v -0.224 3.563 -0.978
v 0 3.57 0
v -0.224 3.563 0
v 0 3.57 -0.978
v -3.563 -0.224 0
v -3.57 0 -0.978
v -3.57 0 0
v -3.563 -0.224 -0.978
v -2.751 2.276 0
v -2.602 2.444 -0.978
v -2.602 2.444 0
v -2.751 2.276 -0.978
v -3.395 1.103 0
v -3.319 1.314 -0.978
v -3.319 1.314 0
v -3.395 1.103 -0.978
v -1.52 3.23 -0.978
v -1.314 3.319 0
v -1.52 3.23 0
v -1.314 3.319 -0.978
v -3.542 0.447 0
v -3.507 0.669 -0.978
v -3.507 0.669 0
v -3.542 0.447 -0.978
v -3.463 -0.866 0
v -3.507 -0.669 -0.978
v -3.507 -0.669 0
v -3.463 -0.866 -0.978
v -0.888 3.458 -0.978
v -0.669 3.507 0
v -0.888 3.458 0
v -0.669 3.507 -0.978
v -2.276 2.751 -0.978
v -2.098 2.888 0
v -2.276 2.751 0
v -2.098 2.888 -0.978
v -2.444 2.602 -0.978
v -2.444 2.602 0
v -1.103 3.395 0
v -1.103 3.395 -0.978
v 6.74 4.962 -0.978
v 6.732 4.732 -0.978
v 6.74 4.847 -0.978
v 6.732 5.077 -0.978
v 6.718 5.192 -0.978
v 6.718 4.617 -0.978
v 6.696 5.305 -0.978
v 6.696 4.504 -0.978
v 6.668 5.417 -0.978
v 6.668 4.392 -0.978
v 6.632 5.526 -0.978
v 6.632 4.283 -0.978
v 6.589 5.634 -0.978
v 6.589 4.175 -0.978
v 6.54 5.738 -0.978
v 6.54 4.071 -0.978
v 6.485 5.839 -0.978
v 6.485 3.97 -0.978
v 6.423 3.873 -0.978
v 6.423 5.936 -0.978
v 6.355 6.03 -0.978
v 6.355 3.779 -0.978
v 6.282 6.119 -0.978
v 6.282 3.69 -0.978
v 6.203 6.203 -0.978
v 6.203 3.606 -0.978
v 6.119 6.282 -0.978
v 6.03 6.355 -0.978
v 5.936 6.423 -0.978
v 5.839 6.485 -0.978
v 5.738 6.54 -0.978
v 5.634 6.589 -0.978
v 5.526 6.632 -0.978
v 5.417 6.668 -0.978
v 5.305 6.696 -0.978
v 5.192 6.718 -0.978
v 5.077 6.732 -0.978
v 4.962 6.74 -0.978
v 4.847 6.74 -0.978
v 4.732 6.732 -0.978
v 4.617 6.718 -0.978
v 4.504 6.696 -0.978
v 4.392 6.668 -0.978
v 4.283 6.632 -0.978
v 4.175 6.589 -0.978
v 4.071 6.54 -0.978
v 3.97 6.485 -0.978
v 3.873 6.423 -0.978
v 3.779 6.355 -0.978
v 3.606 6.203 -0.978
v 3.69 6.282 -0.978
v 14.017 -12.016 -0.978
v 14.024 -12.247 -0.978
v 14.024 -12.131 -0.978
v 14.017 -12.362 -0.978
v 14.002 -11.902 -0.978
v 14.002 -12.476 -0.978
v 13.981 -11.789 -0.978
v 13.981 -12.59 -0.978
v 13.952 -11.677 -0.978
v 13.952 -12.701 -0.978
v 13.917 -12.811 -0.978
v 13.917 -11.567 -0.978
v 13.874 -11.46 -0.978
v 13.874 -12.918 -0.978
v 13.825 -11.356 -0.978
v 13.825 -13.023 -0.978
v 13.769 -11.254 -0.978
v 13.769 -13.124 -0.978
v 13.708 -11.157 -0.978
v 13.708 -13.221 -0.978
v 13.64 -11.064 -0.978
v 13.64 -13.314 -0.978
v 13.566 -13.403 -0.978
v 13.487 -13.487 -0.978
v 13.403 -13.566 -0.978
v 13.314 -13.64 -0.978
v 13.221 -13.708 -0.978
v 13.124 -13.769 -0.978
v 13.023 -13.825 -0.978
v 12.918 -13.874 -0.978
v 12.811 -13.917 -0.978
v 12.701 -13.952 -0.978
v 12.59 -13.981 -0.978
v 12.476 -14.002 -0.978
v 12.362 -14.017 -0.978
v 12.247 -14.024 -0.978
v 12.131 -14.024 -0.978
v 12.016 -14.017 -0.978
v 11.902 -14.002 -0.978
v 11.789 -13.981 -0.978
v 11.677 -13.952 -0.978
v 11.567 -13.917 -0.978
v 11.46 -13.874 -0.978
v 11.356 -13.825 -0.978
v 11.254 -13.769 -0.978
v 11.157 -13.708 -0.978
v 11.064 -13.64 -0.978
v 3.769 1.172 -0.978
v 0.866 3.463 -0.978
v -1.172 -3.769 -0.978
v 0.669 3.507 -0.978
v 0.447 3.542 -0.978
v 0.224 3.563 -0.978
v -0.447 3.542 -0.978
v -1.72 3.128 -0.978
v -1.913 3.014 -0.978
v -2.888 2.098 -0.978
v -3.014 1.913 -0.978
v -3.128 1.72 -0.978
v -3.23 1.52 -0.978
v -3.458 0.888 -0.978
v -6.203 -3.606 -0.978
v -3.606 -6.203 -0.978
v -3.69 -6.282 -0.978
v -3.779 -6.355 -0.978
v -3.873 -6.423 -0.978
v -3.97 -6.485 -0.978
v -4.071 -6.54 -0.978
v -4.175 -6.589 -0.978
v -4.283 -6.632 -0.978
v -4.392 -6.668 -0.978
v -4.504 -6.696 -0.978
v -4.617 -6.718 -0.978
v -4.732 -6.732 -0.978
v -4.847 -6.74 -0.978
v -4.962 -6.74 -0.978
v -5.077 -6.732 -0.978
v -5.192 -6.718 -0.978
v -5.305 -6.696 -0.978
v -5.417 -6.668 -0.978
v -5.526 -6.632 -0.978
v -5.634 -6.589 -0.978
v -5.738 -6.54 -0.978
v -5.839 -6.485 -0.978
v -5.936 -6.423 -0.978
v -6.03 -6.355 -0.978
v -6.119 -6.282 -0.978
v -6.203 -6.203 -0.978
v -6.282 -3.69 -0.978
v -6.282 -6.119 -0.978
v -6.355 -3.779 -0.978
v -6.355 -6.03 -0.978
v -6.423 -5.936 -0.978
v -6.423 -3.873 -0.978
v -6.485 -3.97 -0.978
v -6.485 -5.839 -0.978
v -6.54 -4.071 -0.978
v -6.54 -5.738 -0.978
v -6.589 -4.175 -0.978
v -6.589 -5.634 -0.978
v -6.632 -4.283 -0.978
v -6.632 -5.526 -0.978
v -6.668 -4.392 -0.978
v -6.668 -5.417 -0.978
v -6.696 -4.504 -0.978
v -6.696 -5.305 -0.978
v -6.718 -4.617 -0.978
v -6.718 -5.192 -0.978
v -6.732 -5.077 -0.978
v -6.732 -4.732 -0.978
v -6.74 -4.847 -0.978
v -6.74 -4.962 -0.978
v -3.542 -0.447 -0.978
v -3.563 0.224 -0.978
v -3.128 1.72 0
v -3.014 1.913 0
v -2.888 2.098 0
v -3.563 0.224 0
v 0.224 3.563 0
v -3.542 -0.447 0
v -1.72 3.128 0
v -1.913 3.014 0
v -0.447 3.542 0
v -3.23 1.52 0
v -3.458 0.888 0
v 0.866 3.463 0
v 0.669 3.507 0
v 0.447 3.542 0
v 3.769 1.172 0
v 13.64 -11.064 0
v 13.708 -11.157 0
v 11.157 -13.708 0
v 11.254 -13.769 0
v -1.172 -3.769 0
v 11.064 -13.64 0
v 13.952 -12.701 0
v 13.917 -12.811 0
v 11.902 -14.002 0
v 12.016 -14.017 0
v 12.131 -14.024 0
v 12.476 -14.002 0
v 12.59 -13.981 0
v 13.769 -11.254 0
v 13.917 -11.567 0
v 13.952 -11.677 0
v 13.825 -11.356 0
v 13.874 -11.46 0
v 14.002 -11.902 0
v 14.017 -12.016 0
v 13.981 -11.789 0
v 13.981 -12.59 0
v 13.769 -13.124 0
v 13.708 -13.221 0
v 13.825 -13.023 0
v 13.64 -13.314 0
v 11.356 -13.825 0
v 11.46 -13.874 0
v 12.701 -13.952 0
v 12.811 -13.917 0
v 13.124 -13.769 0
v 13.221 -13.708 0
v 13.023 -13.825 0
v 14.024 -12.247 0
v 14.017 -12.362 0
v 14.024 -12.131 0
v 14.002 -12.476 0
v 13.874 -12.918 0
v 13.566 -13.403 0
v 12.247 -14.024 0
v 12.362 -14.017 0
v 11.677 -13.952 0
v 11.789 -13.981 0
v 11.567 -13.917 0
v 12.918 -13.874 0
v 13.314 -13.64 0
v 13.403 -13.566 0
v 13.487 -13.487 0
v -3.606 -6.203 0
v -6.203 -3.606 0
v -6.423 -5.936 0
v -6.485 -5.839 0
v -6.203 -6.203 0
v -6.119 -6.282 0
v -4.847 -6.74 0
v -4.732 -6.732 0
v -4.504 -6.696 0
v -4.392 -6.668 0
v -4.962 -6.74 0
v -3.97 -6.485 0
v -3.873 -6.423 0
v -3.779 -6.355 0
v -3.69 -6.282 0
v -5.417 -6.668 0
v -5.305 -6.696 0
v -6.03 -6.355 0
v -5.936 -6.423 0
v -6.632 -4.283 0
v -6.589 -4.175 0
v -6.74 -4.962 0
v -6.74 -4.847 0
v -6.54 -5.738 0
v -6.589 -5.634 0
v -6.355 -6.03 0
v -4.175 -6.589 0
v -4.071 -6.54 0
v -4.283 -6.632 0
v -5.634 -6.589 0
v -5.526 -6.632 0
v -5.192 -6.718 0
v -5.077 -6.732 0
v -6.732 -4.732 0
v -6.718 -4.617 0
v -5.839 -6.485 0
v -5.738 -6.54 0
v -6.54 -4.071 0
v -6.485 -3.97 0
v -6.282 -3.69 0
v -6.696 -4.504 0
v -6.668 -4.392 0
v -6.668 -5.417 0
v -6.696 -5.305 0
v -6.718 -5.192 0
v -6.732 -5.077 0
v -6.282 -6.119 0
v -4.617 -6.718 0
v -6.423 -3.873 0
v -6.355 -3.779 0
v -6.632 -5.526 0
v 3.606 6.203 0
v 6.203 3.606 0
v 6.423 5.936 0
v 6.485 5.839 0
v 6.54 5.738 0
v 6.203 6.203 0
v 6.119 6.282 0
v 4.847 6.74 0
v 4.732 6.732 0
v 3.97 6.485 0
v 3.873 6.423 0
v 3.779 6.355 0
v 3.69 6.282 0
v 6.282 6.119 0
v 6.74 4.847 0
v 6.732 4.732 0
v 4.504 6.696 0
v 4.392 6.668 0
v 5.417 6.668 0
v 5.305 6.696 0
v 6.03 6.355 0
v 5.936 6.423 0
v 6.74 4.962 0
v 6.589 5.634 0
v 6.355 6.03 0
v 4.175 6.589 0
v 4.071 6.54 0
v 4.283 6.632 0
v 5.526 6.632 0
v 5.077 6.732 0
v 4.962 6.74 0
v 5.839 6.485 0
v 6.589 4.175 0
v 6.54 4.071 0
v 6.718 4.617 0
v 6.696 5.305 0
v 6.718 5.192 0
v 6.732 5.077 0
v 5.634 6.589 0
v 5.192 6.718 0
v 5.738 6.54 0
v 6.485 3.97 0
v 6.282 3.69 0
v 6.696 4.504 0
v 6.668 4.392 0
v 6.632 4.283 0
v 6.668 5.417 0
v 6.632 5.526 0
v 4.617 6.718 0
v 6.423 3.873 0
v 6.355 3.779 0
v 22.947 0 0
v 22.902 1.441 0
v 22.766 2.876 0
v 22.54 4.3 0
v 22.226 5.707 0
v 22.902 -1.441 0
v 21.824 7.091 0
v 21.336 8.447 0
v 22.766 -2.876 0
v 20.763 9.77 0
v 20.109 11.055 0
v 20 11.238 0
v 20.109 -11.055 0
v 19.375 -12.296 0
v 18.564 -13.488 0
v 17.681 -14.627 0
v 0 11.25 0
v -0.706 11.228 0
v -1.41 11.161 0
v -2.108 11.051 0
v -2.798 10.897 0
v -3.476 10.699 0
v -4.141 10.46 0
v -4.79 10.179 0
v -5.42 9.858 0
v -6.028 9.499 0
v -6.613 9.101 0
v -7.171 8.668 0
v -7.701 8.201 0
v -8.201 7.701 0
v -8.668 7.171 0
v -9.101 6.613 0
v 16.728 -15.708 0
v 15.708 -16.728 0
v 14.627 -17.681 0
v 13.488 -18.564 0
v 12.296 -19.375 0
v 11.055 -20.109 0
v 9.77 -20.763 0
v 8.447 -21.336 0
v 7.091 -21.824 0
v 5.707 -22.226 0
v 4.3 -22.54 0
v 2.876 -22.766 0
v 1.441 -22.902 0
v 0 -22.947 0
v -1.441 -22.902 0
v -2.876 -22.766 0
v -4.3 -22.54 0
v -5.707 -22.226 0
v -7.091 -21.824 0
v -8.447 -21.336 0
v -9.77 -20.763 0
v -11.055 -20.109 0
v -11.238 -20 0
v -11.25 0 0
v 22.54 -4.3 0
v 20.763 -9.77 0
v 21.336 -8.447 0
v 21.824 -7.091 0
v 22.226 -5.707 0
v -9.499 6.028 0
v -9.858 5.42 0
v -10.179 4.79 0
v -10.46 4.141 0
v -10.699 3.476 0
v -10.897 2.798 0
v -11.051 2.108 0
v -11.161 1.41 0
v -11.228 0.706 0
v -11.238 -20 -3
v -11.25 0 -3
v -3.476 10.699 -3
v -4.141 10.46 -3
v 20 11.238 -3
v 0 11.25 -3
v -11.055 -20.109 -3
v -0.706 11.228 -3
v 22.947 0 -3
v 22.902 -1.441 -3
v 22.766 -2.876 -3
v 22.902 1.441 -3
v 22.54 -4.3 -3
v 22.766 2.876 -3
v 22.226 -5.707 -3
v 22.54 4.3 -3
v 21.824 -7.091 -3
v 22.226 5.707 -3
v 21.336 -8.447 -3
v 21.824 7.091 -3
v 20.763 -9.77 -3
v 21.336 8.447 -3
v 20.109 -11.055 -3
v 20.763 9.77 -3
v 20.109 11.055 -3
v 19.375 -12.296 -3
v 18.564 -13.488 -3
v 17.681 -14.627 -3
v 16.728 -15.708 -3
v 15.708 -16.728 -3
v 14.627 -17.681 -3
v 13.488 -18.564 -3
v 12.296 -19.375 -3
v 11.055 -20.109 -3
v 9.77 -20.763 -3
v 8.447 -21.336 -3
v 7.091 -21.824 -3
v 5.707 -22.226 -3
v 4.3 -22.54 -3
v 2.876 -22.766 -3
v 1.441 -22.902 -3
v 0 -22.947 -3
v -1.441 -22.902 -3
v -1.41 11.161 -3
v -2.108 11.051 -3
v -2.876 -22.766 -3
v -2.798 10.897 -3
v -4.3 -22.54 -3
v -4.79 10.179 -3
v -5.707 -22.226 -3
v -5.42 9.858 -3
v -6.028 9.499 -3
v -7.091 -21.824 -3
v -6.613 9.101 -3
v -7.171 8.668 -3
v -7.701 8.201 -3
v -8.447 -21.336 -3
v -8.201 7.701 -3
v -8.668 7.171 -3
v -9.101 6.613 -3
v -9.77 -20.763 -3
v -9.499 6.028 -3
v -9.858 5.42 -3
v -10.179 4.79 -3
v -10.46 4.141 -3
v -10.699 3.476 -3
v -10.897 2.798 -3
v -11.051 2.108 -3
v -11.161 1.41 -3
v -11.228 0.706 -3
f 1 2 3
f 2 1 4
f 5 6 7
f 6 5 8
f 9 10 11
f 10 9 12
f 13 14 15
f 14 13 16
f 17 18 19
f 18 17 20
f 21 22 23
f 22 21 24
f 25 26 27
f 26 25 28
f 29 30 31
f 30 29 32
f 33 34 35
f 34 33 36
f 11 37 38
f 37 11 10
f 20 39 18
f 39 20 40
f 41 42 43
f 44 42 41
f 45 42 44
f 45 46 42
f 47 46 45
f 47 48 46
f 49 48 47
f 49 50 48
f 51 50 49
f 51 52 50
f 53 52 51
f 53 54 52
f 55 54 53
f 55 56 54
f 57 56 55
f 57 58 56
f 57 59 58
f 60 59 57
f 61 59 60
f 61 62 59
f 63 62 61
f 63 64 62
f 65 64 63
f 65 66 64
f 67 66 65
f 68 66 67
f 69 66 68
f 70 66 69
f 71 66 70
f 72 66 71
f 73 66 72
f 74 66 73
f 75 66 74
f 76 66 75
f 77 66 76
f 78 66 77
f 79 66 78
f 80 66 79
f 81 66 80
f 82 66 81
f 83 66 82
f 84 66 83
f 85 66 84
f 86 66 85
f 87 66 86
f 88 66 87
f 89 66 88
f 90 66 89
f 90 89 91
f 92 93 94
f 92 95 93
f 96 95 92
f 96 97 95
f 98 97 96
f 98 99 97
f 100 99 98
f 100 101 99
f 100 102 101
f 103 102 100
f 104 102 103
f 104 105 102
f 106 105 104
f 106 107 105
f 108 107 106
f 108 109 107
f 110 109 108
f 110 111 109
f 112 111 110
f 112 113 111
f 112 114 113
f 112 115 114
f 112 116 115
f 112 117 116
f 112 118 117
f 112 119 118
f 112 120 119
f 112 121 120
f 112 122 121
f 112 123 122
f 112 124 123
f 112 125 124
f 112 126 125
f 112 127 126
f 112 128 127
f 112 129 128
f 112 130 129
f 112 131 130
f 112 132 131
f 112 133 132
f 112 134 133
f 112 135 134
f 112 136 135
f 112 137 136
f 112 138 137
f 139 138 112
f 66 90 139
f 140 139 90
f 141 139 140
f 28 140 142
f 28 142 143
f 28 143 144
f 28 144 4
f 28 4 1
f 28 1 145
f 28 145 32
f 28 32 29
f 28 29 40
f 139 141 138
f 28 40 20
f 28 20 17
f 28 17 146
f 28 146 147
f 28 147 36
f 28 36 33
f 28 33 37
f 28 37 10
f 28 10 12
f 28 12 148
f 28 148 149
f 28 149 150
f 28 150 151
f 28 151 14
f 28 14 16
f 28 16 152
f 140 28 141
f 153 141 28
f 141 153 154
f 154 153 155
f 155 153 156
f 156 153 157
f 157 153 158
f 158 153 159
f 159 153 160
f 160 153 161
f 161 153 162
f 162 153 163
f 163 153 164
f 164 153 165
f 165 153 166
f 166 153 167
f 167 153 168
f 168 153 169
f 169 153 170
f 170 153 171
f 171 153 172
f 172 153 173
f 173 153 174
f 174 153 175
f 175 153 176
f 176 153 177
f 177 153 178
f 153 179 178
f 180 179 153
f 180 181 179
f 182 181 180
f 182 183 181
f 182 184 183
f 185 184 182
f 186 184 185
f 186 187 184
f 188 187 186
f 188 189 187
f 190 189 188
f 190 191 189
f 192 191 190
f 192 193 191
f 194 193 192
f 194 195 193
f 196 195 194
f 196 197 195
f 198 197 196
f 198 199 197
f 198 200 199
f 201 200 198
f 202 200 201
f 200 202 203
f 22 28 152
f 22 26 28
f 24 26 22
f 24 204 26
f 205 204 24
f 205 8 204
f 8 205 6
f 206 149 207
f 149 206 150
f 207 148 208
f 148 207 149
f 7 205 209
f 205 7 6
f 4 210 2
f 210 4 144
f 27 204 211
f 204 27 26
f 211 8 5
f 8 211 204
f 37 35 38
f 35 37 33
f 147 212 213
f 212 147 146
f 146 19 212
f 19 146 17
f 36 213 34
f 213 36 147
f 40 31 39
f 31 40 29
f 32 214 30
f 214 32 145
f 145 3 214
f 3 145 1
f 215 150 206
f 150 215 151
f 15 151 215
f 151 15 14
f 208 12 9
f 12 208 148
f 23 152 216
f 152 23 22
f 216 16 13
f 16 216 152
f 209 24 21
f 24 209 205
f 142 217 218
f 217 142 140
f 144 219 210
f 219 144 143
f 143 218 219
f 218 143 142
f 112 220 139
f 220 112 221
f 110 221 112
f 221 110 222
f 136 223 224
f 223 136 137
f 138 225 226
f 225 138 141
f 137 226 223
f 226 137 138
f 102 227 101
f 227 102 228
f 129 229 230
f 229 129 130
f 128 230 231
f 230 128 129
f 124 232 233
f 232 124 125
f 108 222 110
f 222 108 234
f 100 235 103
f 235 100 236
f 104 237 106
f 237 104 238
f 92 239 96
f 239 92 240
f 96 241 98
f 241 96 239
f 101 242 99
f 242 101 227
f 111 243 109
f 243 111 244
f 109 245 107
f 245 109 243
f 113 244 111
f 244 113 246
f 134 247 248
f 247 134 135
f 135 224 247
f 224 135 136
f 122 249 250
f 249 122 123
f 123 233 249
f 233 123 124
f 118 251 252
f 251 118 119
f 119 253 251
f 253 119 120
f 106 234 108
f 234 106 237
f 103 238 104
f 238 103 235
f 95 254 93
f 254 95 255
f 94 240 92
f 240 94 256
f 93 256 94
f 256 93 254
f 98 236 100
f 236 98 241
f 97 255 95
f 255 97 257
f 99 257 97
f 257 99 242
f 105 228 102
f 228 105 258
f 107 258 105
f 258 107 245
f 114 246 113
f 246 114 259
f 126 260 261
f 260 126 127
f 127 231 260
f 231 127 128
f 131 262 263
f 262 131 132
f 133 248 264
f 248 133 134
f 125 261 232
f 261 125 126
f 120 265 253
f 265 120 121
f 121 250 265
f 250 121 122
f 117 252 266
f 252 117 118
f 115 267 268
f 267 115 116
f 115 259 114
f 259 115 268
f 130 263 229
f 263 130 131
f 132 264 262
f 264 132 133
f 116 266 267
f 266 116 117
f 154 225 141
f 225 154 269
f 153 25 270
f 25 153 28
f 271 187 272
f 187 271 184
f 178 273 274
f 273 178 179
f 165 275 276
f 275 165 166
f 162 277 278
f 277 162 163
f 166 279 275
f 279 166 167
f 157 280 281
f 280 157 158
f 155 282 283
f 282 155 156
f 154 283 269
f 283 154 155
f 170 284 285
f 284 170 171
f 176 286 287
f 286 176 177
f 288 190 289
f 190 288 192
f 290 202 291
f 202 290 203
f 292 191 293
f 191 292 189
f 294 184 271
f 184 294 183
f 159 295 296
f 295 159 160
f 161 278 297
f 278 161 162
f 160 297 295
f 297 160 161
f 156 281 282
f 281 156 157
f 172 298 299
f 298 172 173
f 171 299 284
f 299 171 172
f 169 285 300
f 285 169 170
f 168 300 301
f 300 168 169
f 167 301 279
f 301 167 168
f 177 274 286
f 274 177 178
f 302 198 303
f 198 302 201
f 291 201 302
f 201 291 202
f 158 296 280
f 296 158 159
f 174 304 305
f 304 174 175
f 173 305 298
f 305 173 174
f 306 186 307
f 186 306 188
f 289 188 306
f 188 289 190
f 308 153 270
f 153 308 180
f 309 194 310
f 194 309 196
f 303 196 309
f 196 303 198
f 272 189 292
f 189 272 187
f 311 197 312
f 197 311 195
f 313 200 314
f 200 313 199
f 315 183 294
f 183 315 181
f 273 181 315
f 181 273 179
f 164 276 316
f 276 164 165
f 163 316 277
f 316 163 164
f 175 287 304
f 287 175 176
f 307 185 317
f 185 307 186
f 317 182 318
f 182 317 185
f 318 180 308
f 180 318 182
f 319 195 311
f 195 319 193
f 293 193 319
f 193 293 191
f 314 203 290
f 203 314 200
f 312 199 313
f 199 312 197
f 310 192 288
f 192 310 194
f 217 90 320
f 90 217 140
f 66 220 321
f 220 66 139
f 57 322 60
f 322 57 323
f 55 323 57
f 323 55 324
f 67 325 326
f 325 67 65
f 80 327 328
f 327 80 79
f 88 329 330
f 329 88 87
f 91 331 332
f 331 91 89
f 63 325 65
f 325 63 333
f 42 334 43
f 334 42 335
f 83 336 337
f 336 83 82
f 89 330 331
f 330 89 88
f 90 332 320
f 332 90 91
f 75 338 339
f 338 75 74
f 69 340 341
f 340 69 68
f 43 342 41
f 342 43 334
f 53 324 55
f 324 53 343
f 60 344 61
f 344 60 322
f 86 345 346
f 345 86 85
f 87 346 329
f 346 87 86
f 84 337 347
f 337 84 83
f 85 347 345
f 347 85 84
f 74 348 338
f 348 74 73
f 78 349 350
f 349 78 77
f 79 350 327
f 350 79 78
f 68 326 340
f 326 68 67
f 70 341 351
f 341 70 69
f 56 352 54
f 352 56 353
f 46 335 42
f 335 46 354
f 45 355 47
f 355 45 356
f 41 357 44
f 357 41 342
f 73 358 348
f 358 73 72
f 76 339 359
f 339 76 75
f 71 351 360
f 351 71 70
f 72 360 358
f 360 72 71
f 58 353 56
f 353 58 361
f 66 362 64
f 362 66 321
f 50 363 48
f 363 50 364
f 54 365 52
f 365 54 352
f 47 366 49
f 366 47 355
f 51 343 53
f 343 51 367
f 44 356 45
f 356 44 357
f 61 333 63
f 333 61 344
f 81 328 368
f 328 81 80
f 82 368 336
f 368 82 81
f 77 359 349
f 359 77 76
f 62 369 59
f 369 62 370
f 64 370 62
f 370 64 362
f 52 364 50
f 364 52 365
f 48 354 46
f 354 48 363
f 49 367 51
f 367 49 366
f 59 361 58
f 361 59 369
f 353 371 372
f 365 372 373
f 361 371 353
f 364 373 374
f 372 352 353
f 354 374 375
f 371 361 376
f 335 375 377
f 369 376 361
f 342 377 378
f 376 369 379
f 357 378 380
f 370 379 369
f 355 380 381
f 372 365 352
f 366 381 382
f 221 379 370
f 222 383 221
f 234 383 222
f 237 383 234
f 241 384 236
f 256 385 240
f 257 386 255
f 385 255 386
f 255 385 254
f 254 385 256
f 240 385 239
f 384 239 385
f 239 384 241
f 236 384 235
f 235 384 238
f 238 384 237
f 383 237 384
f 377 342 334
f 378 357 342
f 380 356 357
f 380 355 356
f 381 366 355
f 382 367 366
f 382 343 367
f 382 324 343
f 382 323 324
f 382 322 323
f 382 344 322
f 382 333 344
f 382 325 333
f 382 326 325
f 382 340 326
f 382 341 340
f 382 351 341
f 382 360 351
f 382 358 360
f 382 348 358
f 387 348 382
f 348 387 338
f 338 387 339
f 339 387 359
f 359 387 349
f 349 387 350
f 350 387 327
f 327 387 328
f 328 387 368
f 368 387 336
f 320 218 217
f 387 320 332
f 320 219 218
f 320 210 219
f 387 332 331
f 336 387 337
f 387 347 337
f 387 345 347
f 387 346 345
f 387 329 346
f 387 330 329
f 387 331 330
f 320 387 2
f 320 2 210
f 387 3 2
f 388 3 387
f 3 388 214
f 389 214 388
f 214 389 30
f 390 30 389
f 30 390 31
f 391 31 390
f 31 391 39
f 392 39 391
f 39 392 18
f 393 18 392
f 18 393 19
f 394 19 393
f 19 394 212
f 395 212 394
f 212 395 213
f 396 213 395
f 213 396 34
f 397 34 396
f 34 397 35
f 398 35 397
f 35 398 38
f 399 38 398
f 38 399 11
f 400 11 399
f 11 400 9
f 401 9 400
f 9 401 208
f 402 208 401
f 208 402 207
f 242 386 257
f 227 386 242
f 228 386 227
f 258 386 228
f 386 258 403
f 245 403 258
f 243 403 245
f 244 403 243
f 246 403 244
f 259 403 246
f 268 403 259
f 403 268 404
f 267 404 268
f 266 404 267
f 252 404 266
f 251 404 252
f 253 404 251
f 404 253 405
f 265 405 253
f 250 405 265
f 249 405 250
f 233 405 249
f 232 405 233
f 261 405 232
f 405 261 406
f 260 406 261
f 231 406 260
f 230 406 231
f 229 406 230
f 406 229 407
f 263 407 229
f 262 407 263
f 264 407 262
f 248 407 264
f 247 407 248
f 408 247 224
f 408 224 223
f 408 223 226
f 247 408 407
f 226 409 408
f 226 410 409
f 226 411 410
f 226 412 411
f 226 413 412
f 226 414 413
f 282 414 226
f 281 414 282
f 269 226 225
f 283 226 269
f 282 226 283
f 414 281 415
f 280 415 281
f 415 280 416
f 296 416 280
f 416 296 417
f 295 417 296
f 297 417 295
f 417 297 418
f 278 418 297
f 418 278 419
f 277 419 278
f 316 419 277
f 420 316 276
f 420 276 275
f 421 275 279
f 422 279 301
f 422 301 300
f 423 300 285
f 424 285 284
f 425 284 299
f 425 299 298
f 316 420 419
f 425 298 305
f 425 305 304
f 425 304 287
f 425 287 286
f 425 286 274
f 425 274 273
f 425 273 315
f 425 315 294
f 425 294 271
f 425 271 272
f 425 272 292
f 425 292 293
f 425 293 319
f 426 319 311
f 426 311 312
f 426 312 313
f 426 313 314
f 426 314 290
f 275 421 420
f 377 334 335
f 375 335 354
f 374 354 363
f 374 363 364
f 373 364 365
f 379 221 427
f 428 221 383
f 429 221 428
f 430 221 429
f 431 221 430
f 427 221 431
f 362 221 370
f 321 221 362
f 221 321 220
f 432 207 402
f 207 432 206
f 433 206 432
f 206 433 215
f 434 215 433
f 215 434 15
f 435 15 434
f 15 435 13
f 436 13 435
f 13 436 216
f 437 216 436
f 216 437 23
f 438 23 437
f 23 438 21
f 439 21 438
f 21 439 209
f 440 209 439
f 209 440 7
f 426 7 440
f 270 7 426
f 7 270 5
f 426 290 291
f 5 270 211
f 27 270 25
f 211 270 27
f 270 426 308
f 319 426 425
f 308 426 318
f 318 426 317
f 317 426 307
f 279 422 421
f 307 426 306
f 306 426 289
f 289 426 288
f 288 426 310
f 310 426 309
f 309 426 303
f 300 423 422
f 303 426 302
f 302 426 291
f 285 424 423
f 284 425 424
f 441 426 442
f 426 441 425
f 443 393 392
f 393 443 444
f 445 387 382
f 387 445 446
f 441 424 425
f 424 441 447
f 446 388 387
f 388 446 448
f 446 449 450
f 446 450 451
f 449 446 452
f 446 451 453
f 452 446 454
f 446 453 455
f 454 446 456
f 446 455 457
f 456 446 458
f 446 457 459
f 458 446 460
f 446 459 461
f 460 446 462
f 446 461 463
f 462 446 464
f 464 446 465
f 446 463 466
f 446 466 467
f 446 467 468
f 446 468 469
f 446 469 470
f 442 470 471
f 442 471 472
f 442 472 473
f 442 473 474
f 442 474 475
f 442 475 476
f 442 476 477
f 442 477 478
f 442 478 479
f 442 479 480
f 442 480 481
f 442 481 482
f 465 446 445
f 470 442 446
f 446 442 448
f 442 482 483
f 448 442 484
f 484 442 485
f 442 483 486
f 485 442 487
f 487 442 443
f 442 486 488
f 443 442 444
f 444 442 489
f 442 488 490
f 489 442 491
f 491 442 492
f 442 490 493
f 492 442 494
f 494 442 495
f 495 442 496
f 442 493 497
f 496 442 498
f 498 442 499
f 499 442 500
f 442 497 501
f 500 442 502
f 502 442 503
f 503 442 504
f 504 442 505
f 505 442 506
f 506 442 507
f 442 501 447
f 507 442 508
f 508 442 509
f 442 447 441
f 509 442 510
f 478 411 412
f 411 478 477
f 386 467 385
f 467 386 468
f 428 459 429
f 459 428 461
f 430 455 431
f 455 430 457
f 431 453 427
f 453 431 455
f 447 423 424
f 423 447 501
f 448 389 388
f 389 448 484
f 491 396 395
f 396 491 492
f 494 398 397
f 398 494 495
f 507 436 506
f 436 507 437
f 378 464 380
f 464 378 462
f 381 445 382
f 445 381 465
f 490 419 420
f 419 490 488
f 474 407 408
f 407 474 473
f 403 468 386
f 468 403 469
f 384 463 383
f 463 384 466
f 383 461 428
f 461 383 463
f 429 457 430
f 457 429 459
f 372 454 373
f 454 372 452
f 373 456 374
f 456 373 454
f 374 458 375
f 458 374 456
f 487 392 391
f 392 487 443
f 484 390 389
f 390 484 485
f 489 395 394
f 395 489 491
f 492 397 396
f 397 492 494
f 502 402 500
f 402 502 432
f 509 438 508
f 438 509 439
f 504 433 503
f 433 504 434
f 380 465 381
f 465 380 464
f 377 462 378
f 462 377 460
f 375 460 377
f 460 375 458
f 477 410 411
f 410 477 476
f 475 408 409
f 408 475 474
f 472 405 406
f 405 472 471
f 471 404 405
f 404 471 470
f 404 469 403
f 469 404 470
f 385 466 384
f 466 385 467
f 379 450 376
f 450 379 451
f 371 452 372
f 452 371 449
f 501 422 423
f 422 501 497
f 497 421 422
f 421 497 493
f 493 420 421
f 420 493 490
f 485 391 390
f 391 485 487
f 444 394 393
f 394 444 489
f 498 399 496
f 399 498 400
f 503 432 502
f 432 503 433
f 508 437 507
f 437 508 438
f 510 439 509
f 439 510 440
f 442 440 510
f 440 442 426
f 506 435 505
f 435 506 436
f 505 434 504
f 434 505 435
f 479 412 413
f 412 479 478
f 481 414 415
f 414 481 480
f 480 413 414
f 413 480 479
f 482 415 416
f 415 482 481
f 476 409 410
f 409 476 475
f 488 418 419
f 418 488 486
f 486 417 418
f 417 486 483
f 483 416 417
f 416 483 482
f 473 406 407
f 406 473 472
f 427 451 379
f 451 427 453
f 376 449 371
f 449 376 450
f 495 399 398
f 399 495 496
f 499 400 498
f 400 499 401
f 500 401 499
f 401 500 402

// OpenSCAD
// file: ../servo.scad
diff = 1;  // For holes.

servo_length = 22.5;
servo_width = 12.3;
servo_height = 23.5;

servo_mountsTop = 19.3;
servo_mountsThickness = 2.3;
servo_mountsOut = 5.1;
servo_mountsHoleWidth = 2.8;
servo_mountsSlotWidth = 1;

servo_gearholderHeight = 4.3;
servo_gearholderRadius = servo_width / 2;
servo_gearholderInset = servo_gearholderRadius;
servo_gearholderSmallRadius = 2.5;
servo_gearholderSmallOffset = servo_gearholderRadius * 2;

servo_hornStubHeight = 3.5;
servo_hornStubRadius = 2.3;

servo_armThickness = 1.4;
servo_armStalkRadius = 3.5;
servo_armStalkHeight = 3.9;
servo_armStalkAboutBase = 0.75;
servo_armHornHoleRadius = 0.4;
servo_armHoleSpacing = 2;
servo_bigArmBigRadius = 3.5;
servo_bigArmBigRadiusOut = 1;
servo_bigArmSmallRadius = 1.8;
servo_bigArmCentersLength = 16.9;
servo_bigArmHornHoleCount = 7;
servo_smallArmBigRadius = 1.8;
servo_smallArmBigRadiusOut = 0;
servo_smallArmSmallRadius = 1.8;
servo_smallArmCentersLength = 6.8;
servo_smallArmHornHoleCount = 2;

servo_wireFromBottom = 1.5;
servo_wireWidth = 3.6;

servo_totalHeight = servo_height + servo_gearholderHeight + servo_armStalkAboutBase + servo_armStalkHeight;

module sg90Servo(rotation) {

    translate([-servo_gearholderRadius, -servo_gearholderRadius, -servo_totalHeight]) {
        color([0, 0, 0.7]) {
            _chassis();
            _clusterProtrusion();
        }

        _wireStub();

        color([1, 1, 1]) {
            _horn();
            translate([servo_width / 2, servo_width / 2, servo_height + servo_gearholderHeight + servo_armStalkAboutBase]) {
                _arm(rotation, true);
            }
        }
    }
}

module _chassis() {
    cube([servo_length, servo_width, servo_height]);

    translate([-servo_mountsOut, 0, servo_mountsTop - servo_mountsThickness]) {
        difference() {
            cube([servo_length + (servo_mountsOut * 2), servo_width, servo_mountsThickness]);

            // Mount hole/slot.
            translate([servo_mountsOut / 2, servo_width / 2, -diff]) {
                cylinder(r=servo_mountsHoleWidth / 2, h=servo_mountsThickness + (diff*2));
            }
            translate([-diff, (servo_width / 2) - (servo_mountsSlotWidth / 2), -diff]) {
                cube([(servo_mountsOut / 2) + diff, servo_mountsSlotWidth, servo_mountsThickness + (diff*2)]);
            }
            translate([servo_length + servo_mountsOut, 0, 0]) {
                translate([servo_mountsOut / 2, servo_width / 2, -diff]) {
                    cylinder(r=servo_mountsHoleWidth / 2, h=servo_mountsThickness + (diff*2));
                }
                translate([(servo_mountsOut / 2), (servo_width / 2) - (servo_mountsSlotWidth / 2), -diff]) {
                    cube([(servo_mountsOut / 2) + diff, servo_mountsSlotWidth, servo_mountsThickness + (diff*2)]);
                }
            }
        }
    }
}

module _wireStub() {
    translate([0, servo_width / 2, servo_wireFromBottom]) {
        rotate([0, -90, 0]) {
            color([1, 0, 0]) cylinder(h=servo_wireWidth / 3, r=servo_wireWidth / 6);
            color([0.5, 0.25, 0.25]) translate([0, -servo_wireWidth / 3, 0]) cylinder(h=servo_wireWidth / 3, r=servo_wireWidth / 6);
            color([1, 1, 0.5]) translate([0, servo_wireWidth / 3, 0]) cylinder(h=servo_wireWidth / 3, r=servo_wireWidth / 6);
        }
    }
}

module _clusterProtrusion() {
    translate([servo_gearholderInset, servo_width / 2, servo_height]) {
        cylinder(h=servo_gearholderHeight, r=servo_gearholderRadius);
    }

    translate([servo_gearholderSmallOffset, servo_width / 2, servo_height]) {
        cylinder(h=servo_gearholderHeight, r=servo_gearholderSmallRadius);
    }
}

module _horn() {
    translate([servo_width / 2, servo_width / 2, servo_height + servo_gearholderHeight]) {
        cylinder(h=servo_hornStubHeight, r=servo_hornStubRadius);
    }
}

module _arm(rotation, holes) {
    cylinder(h=servo_armStalkHeight, r=servo_armStalkRadius);

    difference() {
        hull() {
            translate([0, 0, servo_armStalkHeight - servo_armThickness]) {
                rotate([0, 0, rotation]) {
                    translate([servo_bigArmBigRadiusOut, -servo_bigArmBigRadius, 0]) cube([0.1, servo_bigArmBigRadius*2, servo_armThickness]);
                    translate([servo_bigArmCentersLength, 0, 0]) {
                        cylinder(h=servo_armThickness, r=servo_bigArmSmallRadius);
                    }
                }
            }
        }

        if (holes) {
            for(offset = [0:servo_bigArmHornHoleCount])  {
                translate([0, 0, servo_armStalkHeight - servo_armThickness - 1]) {
                    rotate([0, 0, rotation]) {
                        translate([servo_bigArmCentersLength - (servo_armHoleSpacing * offset), 0, 0]) {
                            cylinder(h=servo_armThickness + 2, r=servo_armHornHoleRadius);
                        }
                    }
                }
            }
        }
    }
    
    rotate([0, 0, 90]) difference() {
        hull() {
            translate([0, 0, servo_armStalkHeight - servo_armThickness]) {
                rotate([0, 0, rotation]) {
                    translate([servo_smallArmBigRadiusOut, -servo_smallArmBigRadius, 0]) cube([0.01, servo_smallArmBigRadius*2, servo_armThickness]);
                    translate([servo_smallArmCentersLength, 0, 0]) {
                        cylinder(h=servo_armThickness, r=servo_smallArmSmallRadius);
                    }
                }
            }
        }

        if (holes) {
            for(offset = [0:servo_smallArmHornHoleCount])  {
                translate([0, 0, servo_armStalkHeight - servo_armThickness - 1]) {
                    rotate([0, 0, rotation]) {
                        translate([servo_smallArmCentersLength - (servo_armHoleSpacing * offset), 0, 0]) {
                            cylinder(h=servo_armThickness + 2, r=servo_armHornHoleRadius);
                        }
                    }
                }
            }
        }
    }       
    
    rotate([0, 0, -90]) difference() {
        hull() {
            translate([0, 0, servo_armStalkHeight - servo_armThickness]) {
                rotate([0, 0, rotation]) {
                    translate([servo_smallArmBigRadiusOut, -servo_smallArmBigRadius, 0]) cube([0.01, servo_smallArmBigRadius*2, servo_armThickness]);
                    translate([servo_smallArmCentersLength, 0, 0]) {
                        cylinder(h=servo_armThickness, r=servo_smallArmSmallRadius);
                    }
                }
            }
        }

        if (holes) {
            for(offset = [0:servo_smallArmHornHoleCount])  {
                translate([0, 0, servo_armStalkHeight - servo_armThickness - 1]) {
                    rotate([0, 0, rotation]) {
                        translate([servo_smallArmCentersLength - (servo_armHoleSpacing * offset), 0, 0]) {
                            cylinder(h=servo_armThickness + 2, r=servo_armHornHoleRadius);
                        }
                    }
                }
            }
        }
    }       
}

//$fn=100;
//sg90Servo(0);
//_arm(45, true);
// file: ../magicbox.scad
include <servo.scad>;

// For making holes.
slot_diff = 1;

// For spacing moving parts.
fit_gaps = 0.1;
motion_gaps = 0.5;

cam_axis_inset_from_wall_outside = servo_mountsOut + servo_gearholderInset;
cam_radius = cam_axis_inset_from_wall_outside;
cam_flat_length = 20;
cam_outer_radius = sqrt(pow(cam_radius, 2) + pow(cam_flat_length, 2));
cam_thickness = 3;

wall_thickness = 3;
box_size = (servo_totalHeight + wall_thickness + (cam_thickness / 2) - servo_armThickness) * 2;

hinge_radius = 2.5;
hinge_gap = 0.2;
hinge_height = 10;
hinge_axis_sep = 10;

module box(cam_angle) {
    color("silver") side_with_servo_rear_mount();
    rotate([0, 0, 90]) color("silver") side_with_servo_mount_slot();

    translate([cam_axis_inset_from_wall_outside, cam_axis_inset_from_wall_outside, -cam_thickness/2 + servo_armThickness]) sg90Servo(cam_angle+45);
    translate([cam_radius, cam_radius, -cam_thickness/2]) color("yellow") rotate([0, 0, 180 + cam_angle]) cam();
}

module side_with_servo_mount_slot() {
    mirror([0, 1, 0]) difference() {
        side();
        translate([cam_axis_inset_from_wall_outside - (servo_width/2) - fit_gaps, -slot_diff, -servo_mountsTop+servo_mountsThickness+servo_armThickness+fit_gaps*2]) {
            cube([servo_width + fit_gaps*2, wall_thickness + slot_diff*2, servo_mountsThickness + fit_gaps*2]);
        }
    }
}

module side_with_servo_rear_mount() {
    side();
    translate([servo_length + servo_mountsOut + fit_gaps, 0, -servo_totalHeight + servo_mountsTop - cam_thickness/2 + servo_armThickness - servo_mountsThickness - fit_gaps - 10]) {
         cube([servo_mountsOut, servo_mountsOut+servo_width, 10]);
    }
    translate([servo_length + fit_gaps, 0, -servo_totalHeight + servo_mountsTop - cam_thickness/2 + servo_armThickness - servo_mountsThickness - fit_gaps - 10]) {
         cube([servo_mountsOut, servo_mountsOut - fit_gaps, 10]);
    }
}

module side() {
    height = box_size;
    difference() {
        translate([0, 0, -height/2]) cube([box_size, wall_thickness, height]);
        union() {
            translate([cam_axis_inset_from_wall_outside, cam_axis_inset_from_wall_outside, -(cam_thickness/2 + motion_gaps)]) {
                cylinder(r=cam_outer_radius + motion_gaps, h=cam_thickness + (motion_gaps*2));
            }
            translate([0, 0, hinge_axis_sep]) hinge_slot();
            translate([0, 0, -hinge_axis_sep-hinge_height]) hinge_slot();
            translate([0, 0, -height/2 - slot_diff]) rotate([0, 0, 45]) translate([-slot_diff, 0, 0]) cube([pow(wall_thickness,2), pow(wall_thickness,2), height + slot_diff*2]);
        }
    }
}

module hinge_slot() {
    inset = sqrt(2 * pow(hinge_radius + hinge_gap/2, 2));
    difference(){
        translate([-slot_diff, -slot_diff, 0]) cube([inset+slot_diff, inset+slot_diff, hinge_height]);
        union() {
            translate([inset, 0, -slot_diff]) {
                cylinder(r=hinge_radius, h=hinge_height + slot_diff*2);
                rotate([0, 0, 45]) translate([0, -hinge_radius, 0]) cube([hinge_radius*2, hinge_radius*2, hinge_height + slot_diff*2]);
            }
        }
    }
}

module cam() {
    rotate([0, 0, -90]) {
        difference() {
            hull() {
                cylinder(r=cam_radius, h=cam_thickness);
                difference() {   
                    cylinder(r=cam_outer_radius, h=cam_thickness);
                    union() {
                        rotate([0, 0, 90]) translate([0, -cam_flat_length, -slot_diff]) cube([cam_outer_radius * 2, cam_outer_radius * 2, cam_thickness * 2]);
                        rotate([0, 0, 90]) mirror([1, -1, 0]) translate([0, -cam_flat_length, -slot_diff]) cube([cam_outer_radius * 2, cam_outer_radius * 2, cam_thickness * 2]);
                    }
                }
            }
            translate([0, 0, - servo_armStalkHeight + servo_armThickness - 0.5]) {
                scale([1.02, 1.02, 1.02]) _arm(-45, false);
            }
        }
    }
}
//$fn=100;
//cam();
// main file
include <../magicbox.scad>; 
$fn = 100; box_size = 100; rotate([0, 180, 0]) cam(); 
